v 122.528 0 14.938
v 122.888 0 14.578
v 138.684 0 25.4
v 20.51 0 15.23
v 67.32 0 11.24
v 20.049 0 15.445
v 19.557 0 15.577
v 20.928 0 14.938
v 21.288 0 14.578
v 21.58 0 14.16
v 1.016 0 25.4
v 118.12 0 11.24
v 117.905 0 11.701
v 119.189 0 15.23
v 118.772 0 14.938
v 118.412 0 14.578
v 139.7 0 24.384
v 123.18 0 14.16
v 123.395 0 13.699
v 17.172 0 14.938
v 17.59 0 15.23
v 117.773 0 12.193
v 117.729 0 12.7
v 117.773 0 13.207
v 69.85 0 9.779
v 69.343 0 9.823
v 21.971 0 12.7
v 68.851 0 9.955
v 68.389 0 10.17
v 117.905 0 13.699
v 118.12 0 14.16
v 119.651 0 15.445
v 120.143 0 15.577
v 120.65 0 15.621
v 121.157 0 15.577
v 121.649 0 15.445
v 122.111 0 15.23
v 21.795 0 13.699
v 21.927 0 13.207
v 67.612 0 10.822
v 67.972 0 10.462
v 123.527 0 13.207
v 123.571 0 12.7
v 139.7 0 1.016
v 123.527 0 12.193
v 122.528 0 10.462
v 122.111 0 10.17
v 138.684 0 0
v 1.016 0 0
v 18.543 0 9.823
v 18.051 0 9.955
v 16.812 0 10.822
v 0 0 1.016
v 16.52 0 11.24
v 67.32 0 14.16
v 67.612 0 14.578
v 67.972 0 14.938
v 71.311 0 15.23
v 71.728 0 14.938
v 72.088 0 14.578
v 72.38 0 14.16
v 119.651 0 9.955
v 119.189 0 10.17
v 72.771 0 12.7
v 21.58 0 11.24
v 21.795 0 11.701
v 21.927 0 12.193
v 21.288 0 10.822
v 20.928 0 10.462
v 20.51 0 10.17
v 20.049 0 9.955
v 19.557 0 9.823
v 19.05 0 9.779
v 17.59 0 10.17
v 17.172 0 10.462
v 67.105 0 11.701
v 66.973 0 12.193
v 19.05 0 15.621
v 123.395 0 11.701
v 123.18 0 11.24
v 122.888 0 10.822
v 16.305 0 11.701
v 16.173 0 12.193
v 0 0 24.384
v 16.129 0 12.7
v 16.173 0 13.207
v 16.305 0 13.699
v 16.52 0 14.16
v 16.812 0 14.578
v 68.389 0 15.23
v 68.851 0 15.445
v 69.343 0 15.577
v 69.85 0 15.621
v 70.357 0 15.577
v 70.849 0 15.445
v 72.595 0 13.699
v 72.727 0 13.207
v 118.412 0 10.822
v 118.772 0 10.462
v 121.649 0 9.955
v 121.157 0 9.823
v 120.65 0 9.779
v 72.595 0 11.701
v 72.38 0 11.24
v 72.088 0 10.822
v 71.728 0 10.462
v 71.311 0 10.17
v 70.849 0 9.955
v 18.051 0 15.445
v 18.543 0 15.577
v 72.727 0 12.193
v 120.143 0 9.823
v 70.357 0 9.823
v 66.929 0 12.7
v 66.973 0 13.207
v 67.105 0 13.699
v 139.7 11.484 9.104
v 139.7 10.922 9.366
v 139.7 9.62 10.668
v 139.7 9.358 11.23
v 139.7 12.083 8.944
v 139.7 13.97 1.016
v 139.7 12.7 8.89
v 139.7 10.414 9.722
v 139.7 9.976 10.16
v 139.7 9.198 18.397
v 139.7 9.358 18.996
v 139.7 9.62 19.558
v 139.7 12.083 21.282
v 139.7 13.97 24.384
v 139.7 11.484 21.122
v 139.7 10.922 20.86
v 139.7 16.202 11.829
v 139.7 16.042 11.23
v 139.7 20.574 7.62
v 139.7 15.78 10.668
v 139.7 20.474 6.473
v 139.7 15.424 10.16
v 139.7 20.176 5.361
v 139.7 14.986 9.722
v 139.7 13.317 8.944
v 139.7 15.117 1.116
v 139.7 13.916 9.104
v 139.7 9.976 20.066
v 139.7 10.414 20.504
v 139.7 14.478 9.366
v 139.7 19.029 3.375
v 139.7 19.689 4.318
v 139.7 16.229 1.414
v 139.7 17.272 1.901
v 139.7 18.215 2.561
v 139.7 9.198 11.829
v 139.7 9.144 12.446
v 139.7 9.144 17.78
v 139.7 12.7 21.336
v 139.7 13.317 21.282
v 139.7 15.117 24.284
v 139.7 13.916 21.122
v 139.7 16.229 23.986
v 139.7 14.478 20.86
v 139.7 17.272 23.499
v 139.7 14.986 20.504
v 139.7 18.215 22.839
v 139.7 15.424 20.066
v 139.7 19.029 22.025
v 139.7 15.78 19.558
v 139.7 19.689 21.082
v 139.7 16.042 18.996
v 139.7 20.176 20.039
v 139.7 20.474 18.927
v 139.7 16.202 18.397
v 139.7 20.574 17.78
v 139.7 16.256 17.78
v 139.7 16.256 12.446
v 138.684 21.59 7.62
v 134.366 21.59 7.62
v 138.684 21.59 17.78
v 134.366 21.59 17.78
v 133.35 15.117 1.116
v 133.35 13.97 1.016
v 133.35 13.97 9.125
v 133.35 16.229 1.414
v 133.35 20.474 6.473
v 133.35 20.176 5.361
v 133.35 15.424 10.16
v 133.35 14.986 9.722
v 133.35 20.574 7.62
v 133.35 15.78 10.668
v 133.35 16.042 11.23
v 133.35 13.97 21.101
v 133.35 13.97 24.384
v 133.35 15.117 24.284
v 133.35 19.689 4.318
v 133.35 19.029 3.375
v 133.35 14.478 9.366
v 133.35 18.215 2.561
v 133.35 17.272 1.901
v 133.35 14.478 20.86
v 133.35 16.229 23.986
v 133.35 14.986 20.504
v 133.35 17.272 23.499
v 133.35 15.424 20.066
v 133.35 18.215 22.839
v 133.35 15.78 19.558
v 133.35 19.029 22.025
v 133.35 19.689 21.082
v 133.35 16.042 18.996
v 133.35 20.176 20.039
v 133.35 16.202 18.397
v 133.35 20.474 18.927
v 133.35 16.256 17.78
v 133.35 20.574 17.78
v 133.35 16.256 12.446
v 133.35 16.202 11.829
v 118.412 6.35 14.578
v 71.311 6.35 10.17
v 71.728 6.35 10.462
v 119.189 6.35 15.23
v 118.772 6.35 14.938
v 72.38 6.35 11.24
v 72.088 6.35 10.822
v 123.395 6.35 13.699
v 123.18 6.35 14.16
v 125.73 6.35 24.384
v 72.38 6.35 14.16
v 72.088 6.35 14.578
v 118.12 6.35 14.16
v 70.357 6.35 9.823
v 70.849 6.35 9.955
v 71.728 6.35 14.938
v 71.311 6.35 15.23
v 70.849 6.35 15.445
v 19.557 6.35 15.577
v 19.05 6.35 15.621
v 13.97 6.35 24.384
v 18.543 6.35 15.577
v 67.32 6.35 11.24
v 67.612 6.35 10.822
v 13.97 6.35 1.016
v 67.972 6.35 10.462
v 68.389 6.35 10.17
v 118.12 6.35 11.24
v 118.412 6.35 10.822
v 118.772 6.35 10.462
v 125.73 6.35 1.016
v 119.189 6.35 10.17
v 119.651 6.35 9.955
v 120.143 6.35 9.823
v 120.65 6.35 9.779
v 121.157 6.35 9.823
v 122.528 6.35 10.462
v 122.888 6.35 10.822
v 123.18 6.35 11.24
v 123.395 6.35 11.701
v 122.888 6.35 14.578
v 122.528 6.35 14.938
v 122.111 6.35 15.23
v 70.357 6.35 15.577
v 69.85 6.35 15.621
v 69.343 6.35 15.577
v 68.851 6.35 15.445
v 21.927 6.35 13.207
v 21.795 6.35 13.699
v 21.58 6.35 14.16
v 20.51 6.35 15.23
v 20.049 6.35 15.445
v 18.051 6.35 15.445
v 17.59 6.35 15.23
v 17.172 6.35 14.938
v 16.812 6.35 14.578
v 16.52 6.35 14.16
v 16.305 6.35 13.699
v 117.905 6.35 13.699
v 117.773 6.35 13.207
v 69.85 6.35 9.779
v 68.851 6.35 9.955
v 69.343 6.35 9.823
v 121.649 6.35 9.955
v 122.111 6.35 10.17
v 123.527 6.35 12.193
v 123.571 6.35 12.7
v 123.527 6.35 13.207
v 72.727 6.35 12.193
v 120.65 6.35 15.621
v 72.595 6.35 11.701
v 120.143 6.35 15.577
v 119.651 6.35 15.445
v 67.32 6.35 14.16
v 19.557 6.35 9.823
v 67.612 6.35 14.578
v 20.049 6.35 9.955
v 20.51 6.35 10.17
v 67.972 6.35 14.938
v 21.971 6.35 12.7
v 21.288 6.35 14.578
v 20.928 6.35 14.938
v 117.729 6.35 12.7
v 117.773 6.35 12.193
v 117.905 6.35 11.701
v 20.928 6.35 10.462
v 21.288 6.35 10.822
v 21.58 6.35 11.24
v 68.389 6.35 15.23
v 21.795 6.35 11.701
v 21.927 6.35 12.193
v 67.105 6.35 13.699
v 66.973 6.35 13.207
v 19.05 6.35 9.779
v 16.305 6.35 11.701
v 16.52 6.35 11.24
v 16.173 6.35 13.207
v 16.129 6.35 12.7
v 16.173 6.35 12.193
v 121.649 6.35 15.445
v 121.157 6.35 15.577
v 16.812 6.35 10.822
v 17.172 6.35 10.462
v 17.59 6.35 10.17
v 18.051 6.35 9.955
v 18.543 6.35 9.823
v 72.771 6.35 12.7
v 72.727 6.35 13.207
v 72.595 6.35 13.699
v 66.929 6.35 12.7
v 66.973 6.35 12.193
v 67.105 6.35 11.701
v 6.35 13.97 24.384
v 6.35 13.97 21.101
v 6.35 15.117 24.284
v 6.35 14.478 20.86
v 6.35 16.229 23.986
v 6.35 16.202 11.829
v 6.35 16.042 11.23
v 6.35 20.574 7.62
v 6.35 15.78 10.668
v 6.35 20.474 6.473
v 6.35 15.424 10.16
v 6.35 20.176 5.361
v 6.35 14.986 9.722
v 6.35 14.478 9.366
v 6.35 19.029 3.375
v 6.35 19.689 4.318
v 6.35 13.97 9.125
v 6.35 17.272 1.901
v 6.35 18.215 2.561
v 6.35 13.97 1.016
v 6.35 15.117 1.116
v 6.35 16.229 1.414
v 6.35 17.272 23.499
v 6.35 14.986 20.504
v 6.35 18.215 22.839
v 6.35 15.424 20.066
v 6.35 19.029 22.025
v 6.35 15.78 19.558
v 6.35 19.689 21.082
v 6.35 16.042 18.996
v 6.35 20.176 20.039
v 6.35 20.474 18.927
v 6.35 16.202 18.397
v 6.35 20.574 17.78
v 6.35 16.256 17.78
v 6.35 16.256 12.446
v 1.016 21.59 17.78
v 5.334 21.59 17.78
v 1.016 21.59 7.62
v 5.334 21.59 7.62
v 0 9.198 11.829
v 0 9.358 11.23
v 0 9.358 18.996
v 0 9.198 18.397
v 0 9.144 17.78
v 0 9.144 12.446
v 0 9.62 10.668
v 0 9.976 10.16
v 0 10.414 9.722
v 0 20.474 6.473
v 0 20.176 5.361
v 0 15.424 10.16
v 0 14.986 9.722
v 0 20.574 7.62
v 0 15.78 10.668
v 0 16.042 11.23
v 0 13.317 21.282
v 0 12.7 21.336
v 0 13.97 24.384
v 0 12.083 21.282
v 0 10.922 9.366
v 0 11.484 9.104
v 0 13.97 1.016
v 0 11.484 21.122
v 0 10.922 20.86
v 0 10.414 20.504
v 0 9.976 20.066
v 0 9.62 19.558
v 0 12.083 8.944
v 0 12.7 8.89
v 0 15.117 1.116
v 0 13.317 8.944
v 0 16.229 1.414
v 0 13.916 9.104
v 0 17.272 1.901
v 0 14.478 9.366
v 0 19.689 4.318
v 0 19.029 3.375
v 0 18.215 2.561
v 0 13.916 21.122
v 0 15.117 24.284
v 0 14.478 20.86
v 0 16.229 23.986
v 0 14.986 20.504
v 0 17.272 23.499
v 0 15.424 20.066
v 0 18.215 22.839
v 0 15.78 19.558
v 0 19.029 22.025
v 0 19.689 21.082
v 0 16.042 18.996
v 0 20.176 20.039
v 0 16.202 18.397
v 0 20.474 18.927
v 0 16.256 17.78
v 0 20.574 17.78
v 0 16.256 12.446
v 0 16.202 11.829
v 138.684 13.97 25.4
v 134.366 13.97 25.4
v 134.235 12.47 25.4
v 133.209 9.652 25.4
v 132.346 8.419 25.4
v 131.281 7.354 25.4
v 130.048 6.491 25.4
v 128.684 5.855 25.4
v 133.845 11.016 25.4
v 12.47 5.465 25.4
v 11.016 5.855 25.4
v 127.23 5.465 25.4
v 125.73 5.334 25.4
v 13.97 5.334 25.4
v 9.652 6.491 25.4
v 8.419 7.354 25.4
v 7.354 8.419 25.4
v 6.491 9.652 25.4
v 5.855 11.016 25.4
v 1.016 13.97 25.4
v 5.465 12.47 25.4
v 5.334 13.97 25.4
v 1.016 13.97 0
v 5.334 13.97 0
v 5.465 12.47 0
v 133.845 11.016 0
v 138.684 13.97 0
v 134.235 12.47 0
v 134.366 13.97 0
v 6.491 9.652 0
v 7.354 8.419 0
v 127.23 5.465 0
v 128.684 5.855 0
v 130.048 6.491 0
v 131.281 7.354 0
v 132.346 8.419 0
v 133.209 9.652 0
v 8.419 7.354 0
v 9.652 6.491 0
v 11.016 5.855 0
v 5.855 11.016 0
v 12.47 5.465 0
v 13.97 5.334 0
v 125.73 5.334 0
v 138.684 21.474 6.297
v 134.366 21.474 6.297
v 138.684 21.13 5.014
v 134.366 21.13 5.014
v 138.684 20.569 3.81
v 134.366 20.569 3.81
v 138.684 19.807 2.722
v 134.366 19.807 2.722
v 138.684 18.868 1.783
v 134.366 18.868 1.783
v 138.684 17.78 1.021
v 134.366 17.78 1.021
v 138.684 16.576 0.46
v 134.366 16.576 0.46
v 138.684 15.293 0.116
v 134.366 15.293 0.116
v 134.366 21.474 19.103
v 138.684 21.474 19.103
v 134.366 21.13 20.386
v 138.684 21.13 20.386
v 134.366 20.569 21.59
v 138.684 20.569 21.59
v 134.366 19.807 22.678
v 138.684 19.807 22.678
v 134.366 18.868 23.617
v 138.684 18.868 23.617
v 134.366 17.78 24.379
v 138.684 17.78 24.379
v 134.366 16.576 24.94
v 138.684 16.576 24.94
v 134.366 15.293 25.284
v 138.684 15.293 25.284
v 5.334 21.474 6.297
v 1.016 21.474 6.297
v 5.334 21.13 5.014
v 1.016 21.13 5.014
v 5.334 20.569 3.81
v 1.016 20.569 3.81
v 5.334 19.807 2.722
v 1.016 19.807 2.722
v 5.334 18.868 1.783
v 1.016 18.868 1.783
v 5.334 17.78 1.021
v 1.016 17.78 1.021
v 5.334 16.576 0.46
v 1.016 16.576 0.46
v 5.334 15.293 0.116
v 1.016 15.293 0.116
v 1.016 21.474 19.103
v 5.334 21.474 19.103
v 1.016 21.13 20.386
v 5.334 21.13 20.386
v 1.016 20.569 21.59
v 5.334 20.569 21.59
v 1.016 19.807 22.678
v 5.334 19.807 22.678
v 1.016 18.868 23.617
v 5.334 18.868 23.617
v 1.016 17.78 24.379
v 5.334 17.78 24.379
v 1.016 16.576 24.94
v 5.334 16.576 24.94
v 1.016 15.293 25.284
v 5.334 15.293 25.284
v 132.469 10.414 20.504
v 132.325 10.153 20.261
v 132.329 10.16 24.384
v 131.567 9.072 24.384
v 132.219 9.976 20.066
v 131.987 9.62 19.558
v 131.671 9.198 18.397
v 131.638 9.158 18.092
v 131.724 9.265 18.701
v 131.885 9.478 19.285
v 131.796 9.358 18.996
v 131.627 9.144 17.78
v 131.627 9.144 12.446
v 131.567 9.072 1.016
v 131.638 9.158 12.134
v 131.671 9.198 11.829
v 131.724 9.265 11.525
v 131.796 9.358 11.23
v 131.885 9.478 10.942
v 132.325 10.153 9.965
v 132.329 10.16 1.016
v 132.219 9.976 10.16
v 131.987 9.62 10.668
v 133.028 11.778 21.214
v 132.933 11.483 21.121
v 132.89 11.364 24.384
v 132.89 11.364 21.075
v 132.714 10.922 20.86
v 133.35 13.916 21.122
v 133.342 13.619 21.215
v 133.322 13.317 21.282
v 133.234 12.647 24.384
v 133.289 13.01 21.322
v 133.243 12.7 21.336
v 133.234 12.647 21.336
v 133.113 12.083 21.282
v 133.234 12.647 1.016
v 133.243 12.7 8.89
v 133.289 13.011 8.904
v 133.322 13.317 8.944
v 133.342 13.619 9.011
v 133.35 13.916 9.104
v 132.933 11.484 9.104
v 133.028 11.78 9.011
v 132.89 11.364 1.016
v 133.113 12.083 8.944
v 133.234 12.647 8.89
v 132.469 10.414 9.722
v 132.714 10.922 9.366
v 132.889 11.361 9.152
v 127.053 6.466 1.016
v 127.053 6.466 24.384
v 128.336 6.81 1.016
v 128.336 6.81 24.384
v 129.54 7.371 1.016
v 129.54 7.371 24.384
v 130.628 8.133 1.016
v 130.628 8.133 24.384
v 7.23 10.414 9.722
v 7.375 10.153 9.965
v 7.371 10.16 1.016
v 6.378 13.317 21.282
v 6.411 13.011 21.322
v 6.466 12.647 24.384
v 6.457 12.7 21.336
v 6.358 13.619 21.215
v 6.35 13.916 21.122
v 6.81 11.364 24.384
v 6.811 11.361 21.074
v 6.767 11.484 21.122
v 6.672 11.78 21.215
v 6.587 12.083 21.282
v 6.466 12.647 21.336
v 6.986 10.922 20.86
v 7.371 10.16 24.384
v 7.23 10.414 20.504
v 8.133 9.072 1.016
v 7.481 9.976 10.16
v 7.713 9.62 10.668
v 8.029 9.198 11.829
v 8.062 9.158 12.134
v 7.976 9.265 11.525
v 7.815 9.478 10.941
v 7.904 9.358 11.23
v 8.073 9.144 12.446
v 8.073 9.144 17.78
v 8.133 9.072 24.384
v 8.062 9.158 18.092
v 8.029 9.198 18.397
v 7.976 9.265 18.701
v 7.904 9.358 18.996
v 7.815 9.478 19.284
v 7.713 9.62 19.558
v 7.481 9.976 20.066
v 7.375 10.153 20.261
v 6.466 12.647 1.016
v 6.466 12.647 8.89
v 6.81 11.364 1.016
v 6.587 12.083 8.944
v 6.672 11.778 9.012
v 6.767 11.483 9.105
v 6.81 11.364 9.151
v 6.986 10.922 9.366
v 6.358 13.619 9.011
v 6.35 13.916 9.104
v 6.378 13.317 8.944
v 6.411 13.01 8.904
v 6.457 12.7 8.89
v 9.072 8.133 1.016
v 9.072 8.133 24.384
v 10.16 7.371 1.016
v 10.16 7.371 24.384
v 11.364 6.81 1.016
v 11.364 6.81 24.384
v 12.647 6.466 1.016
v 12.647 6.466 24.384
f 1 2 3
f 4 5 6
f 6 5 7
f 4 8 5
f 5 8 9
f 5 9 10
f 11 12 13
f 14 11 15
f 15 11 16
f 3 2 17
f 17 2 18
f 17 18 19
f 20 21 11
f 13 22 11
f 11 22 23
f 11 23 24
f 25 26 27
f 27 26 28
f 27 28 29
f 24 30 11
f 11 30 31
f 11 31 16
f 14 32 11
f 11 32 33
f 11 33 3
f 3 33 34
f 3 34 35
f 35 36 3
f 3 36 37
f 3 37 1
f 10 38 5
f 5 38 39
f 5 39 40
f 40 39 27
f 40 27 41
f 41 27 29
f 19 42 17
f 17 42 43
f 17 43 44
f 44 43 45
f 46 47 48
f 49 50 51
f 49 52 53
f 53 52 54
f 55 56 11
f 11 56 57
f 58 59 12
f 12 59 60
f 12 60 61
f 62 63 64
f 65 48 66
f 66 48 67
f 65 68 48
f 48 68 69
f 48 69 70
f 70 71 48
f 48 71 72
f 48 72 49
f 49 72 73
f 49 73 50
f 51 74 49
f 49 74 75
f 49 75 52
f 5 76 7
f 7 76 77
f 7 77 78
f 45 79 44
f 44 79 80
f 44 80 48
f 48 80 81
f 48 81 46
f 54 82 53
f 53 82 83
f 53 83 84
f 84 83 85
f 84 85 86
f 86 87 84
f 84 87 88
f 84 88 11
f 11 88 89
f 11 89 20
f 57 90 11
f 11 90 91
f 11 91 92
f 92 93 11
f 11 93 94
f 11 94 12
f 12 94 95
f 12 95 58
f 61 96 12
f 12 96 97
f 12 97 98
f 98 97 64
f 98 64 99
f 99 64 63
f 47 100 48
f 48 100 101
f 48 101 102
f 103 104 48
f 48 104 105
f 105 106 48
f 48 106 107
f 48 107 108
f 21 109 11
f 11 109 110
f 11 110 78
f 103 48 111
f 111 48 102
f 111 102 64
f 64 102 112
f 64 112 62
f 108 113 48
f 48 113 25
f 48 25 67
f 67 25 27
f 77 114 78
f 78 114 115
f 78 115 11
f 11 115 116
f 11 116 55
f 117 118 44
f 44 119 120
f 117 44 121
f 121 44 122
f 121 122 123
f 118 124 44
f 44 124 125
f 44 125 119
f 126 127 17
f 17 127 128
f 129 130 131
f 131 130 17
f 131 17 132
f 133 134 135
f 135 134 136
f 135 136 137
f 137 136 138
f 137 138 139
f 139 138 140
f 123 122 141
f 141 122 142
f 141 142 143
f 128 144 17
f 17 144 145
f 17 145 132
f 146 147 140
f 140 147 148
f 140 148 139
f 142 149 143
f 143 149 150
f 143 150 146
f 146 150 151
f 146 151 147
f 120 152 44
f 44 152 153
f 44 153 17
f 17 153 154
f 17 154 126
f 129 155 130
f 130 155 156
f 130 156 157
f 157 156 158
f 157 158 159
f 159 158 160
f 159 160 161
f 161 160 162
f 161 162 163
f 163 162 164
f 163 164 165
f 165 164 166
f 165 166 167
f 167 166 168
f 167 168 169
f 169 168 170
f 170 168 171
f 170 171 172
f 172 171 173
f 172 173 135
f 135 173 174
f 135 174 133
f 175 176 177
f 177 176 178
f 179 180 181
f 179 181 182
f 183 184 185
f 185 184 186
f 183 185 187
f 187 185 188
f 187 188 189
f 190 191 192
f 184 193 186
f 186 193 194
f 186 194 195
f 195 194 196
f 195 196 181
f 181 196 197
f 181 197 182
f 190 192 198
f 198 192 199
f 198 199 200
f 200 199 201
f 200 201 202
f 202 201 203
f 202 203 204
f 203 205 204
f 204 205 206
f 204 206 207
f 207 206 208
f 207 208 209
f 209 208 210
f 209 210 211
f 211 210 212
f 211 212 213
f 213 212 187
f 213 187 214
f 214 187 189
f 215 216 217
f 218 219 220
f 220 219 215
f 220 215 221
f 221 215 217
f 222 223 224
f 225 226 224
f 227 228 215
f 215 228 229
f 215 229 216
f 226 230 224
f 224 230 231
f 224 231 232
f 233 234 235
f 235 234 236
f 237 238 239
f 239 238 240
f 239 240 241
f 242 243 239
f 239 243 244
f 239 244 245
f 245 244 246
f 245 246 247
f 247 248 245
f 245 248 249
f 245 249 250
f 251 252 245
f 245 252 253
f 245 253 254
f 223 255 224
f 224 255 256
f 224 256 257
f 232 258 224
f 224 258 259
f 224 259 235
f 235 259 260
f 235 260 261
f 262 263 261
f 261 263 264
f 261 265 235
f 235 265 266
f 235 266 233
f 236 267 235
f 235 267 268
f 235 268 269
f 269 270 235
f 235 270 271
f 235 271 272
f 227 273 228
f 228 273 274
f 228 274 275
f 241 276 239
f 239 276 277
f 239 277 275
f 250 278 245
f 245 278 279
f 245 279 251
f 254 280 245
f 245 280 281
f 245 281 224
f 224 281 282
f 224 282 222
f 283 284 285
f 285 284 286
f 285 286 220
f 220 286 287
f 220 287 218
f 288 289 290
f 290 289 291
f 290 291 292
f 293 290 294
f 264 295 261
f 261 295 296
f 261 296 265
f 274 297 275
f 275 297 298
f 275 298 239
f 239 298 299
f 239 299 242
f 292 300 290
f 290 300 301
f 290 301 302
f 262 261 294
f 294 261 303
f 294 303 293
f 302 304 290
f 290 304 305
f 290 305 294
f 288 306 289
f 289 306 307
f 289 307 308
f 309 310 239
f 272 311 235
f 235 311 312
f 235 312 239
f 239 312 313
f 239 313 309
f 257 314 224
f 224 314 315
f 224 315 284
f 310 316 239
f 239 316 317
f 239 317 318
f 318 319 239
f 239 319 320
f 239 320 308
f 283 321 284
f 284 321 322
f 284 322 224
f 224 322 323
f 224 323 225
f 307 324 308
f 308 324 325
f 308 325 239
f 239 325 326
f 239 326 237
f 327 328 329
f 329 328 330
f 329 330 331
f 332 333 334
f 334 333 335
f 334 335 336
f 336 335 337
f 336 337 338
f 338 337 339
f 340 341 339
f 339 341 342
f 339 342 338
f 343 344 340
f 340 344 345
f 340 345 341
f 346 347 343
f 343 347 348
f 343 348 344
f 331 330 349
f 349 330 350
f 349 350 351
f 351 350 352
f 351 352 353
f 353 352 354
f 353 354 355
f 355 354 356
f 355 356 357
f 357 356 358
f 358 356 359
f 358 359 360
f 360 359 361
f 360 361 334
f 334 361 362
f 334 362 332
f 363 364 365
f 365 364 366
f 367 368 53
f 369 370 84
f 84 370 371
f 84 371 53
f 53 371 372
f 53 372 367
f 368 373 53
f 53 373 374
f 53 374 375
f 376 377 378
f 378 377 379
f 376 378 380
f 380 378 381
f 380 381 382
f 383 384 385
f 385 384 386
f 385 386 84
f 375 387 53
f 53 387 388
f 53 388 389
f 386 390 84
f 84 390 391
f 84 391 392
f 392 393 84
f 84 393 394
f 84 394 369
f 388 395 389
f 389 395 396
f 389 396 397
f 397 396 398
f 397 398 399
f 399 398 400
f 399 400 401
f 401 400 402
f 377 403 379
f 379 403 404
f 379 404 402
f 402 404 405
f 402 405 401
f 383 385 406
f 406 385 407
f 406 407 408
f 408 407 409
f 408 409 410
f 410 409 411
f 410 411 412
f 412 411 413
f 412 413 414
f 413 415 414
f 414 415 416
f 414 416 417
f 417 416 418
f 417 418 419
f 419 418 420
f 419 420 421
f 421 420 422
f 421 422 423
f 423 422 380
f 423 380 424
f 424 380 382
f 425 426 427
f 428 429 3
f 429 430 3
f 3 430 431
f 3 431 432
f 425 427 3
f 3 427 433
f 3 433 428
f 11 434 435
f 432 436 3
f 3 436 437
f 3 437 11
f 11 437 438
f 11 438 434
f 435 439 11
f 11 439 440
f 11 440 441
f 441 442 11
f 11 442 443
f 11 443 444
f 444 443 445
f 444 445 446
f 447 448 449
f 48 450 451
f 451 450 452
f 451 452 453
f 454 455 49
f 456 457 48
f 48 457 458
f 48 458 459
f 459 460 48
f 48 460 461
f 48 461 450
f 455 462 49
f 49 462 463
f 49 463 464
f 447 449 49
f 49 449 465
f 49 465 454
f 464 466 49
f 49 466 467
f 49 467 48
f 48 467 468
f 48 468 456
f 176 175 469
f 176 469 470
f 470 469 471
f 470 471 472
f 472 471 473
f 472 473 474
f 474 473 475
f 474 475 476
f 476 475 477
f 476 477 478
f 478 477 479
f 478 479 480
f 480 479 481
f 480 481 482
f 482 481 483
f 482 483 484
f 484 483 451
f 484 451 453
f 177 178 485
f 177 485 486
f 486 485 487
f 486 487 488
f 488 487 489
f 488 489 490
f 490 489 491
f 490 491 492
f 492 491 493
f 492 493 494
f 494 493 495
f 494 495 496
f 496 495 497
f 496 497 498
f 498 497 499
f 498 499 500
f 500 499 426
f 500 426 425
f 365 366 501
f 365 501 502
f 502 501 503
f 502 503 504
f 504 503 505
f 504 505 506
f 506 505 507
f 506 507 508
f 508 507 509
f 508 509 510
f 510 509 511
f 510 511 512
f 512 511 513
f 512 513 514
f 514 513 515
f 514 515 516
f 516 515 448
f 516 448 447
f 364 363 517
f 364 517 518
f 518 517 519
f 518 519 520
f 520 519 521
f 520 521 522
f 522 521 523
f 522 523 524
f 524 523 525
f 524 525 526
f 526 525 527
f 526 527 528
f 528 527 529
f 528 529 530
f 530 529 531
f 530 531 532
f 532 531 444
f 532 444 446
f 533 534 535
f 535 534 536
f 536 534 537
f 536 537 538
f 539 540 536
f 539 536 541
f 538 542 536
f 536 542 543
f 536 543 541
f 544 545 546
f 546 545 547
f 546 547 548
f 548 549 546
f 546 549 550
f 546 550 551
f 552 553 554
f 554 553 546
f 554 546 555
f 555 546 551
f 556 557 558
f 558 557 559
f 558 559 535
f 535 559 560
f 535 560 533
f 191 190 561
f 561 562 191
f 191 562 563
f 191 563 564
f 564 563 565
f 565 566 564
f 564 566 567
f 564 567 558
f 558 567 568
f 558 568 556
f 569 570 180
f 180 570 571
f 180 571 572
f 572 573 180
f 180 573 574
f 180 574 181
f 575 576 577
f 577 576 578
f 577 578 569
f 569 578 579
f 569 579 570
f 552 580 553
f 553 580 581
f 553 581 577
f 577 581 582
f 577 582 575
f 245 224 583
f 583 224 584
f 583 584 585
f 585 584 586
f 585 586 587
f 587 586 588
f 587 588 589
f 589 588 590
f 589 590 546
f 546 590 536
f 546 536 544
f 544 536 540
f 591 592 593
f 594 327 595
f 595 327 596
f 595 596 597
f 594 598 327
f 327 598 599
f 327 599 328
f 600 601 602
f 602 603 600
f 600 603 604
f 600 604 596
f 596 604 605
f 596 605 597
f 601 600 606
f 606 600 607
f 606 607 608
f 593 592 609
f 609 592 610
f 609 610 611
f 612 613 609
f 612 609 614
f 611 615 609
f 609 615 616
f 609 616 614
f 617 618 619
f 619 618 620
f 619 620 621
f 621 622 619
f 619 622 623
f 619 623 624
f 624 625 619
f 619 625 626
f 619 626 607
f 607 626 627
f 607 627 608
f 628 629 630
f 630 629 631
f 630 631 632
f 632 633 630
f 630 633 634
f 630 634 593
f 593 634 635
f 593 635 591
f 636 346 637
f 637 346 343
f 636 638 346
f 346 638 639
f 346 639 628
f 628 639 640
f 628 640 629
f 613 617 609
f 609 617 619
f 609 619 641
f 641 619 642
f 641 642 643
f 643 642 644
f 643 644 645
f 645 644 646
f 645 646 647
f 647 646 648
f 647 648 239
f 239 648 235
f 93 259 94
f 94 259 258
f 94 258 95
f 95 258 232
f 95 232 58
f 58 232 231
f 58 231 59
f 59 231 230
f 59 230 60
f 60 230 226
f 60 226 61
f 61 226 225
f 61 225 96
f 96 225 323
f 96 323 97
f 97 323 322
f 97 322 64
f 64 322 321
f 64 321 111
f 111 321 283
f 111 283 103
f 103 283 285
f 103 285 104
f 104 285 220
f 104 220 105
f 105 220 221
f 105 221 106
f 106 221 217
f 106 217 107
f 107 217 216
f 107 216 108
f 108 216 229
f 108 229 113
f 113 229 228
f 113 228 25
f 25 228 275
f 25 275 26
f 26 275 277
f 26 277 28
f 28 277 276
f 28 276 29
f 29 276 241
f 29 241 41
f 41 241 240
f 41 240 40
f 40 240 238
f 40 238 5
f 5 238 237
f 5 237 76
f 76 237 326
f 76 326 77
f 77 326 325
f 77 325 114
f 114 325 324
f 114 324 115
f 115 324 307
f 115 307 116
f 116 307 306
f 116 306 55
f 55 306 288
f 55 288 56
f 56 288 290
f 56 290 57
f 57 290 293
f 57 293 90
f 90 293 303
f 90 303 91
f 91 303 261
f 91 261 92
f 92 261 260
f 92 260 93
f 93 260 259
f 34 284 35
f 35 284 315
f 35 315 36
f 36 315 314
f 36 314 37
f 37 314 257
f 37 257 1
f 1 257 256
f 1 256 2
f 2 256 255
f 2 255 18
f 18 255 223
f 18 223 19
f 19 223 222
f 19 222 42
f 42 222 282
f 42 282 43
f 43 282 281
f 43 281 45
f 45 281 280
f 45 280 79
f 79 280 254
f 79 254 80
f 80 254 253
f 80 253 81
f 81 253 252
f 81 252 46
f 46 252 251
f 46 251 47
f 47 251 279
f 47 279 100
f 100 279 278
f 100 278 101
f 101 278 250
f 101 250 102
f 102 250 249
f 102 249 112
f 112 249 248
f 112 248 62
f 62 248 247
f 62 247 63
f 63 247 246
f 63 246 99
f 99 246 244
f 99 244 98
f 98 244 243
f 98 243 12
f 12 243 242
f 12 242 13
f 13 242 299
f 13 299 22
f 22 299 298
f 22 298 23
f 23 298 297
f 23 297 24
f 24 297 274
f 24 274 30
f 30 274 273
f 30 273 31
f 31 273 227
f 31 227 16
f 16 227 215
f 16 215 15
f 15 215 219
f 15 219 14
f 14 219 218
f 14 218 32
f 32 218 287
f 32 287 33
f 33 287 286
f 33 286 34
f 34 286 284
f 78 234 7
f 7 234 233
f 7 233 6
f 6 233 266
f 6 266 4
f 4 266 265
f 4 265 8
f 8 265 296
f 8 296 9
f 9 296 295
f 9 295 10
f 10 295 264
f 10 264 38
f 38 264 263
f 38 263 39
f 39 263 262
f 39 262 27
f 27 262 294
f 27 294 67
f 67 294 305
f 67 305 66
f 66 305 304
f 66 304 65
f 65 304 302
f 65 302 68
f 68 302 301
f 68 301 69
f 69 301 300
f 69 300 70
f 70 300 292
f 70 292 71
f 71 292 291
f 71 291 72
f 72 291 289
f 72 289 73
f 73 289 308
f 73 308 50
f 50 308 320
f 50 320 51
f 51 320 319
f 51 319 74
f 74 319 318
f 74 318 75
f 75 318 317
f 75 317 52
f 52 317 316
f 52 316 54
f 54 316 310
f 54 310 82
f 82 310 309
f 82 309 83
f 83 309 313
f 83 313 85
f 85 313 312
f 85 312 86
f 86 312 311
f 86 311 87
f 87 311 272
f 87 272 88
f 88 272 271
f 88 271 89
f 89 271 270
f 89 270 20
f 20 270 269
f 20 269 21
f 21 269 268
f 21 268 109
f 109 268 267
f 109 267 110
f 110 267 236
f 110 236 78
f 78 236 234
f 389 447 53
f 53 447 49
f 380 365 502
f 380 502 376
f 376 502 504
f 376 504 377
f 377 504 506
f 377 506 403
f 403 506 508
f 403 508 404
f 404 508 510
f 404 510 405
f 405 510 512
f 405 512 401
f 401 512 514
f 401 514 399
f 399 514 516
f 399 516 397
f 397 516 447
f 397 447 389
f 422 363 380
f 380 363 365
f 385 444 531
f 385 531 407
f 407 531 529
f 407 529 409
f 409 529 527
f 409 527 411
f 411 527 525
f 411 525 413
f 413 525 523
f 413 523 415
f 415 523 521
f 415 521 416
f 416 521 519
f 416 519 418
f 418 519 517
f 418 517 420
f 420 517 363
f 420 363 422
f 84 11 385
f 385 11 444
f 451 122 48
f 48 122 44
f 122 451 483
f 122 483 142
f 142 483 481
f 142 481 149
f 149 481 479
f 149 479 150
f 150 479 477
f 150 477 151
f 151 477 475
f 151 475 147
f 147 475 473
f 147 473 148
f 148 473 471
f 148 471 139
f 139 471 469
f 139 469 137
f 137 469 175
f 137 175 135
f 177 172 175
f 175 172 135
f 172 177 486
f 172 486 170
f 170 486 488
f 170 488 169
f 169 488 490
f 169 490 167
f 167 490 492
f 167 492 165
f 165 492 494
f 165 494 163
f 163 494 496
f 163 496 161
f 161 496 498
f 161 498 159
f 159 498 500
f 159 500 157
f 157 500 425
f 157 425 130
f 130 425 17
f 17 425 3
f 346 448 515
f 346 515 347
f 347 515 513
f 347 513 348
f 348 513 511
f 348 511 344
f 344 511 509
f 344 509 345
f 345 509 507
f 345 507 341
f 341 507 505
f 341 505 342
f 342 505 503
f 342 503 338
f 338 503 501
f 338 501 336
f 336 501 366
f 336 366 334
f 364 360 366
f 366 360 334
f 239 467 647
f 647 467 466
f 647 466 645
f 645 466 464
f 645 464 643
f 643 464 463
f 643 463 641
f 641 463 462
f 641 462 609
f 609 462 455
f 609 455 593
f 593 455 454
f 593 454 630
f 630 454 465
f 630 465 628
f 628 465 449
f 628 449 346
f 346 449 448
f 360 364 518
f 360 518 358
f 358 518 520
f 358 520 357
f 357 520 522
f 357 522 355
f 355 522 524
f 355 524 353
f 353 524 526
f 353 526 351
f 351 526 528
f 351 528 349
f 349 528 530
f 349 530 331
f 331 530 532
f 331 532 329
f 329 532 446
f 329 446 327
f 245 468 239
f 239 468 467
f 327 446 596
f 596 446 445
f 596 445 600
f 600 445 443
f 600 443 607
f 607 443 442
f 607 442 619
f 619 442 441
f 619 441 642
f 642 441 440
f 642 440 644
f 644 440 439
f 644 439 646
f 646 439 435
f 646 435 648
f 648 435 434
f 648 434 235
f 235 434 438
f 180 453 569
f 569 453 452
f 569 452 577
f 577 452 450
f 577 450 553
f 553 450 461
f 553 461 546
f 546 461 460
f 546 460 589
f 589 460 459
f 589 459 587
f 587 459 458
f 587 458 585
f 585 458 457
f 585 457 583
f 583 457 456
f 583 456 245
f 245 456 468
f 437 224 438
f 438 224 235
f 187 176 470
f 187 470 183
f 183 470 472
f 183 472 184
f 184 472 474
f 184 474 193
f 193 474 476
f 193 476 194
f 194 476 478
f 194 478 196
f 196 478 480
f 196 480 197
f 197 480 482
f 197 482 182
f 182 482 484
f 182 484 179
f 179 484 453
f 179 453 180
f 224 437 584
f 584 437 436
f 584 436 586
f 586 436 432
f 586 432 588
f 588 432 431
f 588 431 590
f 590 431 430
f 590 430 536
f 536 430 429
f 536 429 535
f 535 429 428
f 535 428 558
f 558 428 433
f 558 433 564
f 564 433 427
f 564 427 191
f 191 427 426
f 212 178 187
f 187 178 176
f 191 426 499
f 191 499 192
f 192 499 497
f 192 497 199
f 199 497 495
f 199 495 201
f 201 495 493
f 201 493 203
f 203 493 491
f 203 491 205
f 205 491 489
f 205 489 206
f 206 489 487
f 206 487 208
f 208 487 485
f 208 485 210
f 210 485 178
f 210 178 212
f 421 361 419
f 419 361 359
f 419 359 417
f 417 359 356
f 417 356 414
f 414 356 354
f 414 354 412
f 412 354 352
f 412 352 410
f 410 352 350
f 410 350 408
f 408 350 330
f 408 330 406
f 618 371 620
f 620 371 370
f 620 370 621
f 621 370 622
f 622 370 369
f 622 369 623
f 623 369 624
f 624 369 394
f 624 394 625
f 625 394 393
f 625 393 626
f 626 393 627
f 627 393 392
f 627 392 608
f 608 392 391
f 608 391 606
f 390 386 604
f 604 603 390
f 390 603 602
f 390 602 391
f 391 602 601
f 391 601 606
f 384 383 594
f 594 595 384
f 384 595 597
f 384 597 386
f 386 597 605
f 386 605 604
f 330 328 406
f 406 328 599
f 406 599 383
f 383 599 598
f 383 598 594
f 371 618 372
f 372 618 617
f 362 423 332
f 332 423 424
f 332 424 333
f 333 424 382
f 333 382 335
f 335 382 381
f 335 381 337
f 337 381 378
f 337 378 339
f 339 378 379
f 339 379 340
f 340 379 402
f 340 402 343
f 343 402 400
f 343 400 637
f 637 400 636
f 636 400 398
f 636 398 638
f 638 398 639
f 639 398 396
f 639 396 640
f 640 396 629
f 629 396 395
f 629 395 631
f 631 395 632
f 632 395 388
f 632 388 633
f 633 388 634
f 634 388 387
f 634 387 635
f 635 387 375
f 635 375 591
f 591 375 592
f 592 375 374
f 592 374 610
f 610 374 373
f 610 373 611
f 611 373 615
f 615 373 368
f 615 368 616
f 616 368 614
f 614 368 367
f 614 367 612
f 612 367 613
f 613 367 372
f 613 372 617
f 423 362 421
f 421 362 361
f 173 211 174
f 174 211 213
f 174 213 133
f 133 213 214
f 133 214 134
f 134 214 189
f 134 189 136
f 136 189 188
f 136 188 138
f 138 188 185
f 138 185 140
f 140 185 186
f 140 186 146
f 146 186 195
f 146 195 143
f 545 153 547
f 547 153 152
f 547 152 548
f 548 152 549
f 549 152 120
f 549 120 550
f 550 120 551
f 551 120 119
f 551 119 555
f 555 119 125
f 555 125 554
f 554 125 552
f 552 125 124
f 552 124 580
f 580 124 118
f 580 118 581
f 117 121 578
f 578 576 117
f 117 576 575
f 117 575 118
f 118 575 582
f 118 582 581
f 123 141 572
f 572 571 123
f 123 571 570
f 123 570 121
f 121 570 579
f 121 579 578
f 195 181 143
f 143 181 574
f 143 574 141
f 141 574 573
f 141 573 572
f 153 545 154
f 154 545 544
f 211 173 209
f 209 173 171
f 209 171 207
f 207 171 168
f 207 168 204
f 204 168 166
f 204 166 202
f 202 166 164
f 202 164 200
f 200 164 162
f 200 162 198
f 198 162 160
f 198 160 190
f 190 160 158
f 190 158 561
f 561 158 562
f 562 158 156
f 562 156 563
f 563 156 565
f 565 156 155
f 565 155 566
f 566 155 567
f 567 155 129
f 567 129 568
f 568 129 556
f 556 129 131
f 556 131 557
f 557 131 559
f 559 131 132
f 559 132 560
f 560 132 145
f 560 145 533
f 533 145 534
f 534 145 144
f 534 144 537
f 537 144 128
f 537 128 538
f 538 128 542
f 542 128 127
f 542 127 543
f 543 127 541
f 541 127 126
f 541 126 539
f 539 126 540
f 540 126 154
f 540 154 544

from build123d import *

# Parameters (mm, degrees)
BOSS_EXTRUDE1_DEPTH = 25.4
FILLET1_R           = 7.62
SKETCH2_R           = 2.921
CUT_EXTRUDE1_DEPTH  = 143.805838816
CHAMFER1_SIZE       = 1.016
CUT_EXTRUDE2_DEPTH  = 144.622345406


with BuildPart() as part:
    # Sketch1 → Boss-Extrude1 (new body)
    with BuildSketch(Plane.XY):
        Polygon((0, 0), (0, 21.59), (6.35, 21.59), (6.35, 6.35), (133.35, 6.35), (133.35, 21.59), (139.7, 21.59), (139.7, 0), align=None)
    extrude(amount=BOSS_EXTRUDE1_DEPTH)

    # Fillet1
    fillet1_edges = [part.edges().sort_by_distance(p)[0] for p in [
        (136.525, 21.59, 0),
        (136.525, 21.59, 25.4),
        (3.175, 21.59, 0),
        (3.175, 21.59, 25.4),
        (133.35, 6.35, 12.7),
        (6.35, 6.35, 12.7),
    ]]
    fillet(fillet1_edges, radius=FILLET1_R - 0.0001)  # a hair under: the kernel refuses the full size

    # Sketch2 → Cut-Extrude1 (cut, through all)
    with BuildSketch(Plane(origin=(0, 6.35, 0), x_dir=(1, 0, 0), z_dir=(0, 1, 0))):
        with Locations(Location((69.85, -12.7, 0), (0, 0, 270))):
            Circle(SKETCH2_R)
        with Locations(Location((120.65, -12.7, 0), (0, 0, 270))):
            Circle(SKETCH2_R)
        with Locations(Location((19.05, -12.7, 0), (0, 0, 270))):
            Circle(SKETCH2_R)
    extrude(amount=-CUT_EXTRUDE1_DEPTH, mode=Mode.SUBTRACT)

    # Chamfer1
    chamfer1_edges = [part.edges().sort_by_distance(p)[0] for p in [
        (139.7, 6.98505, 0),
        (133.35, 21.59, 12.7),
        (139.7, 21.59, 12.7),
        (133.35, 19.358182962, 23.168182962),
        (133.35, 19.358182962, 2.231817038),
        (0, 6.98505, 0),
        (69.85, 6.35, 0),
        (139.7, 19.358182962, 23.168182962),
        (139.7, 19.358182962, 2.231817038),
        (69.85, 6.35, 25.4),
        (0, 6.98505, 25.4),
        (0, 21.59, 12.7),
        (6.35, 21.59, 12.7),
        (0, 19.358182962, 23.168182962),
        (0, 19.358182962, 2.231817038),
        (6.35, 19.358182962, 23.168182962),
        (6.35, 19.358182962, 2.231817038),
        (131.118182962, 8.581817038, 0),
        (131.118182962, 8.581817038, 25.4),
        (8.581817038, 8.581817038, 0),
        (8.581817038, 8.581817038, 25.4),
        (139.7, 6.98505, 25.4),
    ]]
    chamfer(chamfer1_edges, length=CHAMFER1_SIZE)

    # Sketch3 → Cut-Extrude2 (cut, through all)
    with BuildSketch(Plane(origin=(139.7, 0, 0), x_dir=(0, 0, -1), z_dir=(1, 0, 0))):
        with BuildLine():
            Line((-17.78, 16.256), (-12.446, 16.256))
            ThreePointArc((-12.446, 16.256), (-8.89, 12.7), (-12.446, 9.144))
            Line((-12.446, 9.144), (-17.78, 9.144))
            ThreePointArc((-17.78, 9.144), (-21.336, 12.7), (-17.78, 16.256))
        make_face()
    extrude(amount=-CUT_EXTRUDE2_DEPTH, mode=Mode.SUBTRACT)


solid = part.part
